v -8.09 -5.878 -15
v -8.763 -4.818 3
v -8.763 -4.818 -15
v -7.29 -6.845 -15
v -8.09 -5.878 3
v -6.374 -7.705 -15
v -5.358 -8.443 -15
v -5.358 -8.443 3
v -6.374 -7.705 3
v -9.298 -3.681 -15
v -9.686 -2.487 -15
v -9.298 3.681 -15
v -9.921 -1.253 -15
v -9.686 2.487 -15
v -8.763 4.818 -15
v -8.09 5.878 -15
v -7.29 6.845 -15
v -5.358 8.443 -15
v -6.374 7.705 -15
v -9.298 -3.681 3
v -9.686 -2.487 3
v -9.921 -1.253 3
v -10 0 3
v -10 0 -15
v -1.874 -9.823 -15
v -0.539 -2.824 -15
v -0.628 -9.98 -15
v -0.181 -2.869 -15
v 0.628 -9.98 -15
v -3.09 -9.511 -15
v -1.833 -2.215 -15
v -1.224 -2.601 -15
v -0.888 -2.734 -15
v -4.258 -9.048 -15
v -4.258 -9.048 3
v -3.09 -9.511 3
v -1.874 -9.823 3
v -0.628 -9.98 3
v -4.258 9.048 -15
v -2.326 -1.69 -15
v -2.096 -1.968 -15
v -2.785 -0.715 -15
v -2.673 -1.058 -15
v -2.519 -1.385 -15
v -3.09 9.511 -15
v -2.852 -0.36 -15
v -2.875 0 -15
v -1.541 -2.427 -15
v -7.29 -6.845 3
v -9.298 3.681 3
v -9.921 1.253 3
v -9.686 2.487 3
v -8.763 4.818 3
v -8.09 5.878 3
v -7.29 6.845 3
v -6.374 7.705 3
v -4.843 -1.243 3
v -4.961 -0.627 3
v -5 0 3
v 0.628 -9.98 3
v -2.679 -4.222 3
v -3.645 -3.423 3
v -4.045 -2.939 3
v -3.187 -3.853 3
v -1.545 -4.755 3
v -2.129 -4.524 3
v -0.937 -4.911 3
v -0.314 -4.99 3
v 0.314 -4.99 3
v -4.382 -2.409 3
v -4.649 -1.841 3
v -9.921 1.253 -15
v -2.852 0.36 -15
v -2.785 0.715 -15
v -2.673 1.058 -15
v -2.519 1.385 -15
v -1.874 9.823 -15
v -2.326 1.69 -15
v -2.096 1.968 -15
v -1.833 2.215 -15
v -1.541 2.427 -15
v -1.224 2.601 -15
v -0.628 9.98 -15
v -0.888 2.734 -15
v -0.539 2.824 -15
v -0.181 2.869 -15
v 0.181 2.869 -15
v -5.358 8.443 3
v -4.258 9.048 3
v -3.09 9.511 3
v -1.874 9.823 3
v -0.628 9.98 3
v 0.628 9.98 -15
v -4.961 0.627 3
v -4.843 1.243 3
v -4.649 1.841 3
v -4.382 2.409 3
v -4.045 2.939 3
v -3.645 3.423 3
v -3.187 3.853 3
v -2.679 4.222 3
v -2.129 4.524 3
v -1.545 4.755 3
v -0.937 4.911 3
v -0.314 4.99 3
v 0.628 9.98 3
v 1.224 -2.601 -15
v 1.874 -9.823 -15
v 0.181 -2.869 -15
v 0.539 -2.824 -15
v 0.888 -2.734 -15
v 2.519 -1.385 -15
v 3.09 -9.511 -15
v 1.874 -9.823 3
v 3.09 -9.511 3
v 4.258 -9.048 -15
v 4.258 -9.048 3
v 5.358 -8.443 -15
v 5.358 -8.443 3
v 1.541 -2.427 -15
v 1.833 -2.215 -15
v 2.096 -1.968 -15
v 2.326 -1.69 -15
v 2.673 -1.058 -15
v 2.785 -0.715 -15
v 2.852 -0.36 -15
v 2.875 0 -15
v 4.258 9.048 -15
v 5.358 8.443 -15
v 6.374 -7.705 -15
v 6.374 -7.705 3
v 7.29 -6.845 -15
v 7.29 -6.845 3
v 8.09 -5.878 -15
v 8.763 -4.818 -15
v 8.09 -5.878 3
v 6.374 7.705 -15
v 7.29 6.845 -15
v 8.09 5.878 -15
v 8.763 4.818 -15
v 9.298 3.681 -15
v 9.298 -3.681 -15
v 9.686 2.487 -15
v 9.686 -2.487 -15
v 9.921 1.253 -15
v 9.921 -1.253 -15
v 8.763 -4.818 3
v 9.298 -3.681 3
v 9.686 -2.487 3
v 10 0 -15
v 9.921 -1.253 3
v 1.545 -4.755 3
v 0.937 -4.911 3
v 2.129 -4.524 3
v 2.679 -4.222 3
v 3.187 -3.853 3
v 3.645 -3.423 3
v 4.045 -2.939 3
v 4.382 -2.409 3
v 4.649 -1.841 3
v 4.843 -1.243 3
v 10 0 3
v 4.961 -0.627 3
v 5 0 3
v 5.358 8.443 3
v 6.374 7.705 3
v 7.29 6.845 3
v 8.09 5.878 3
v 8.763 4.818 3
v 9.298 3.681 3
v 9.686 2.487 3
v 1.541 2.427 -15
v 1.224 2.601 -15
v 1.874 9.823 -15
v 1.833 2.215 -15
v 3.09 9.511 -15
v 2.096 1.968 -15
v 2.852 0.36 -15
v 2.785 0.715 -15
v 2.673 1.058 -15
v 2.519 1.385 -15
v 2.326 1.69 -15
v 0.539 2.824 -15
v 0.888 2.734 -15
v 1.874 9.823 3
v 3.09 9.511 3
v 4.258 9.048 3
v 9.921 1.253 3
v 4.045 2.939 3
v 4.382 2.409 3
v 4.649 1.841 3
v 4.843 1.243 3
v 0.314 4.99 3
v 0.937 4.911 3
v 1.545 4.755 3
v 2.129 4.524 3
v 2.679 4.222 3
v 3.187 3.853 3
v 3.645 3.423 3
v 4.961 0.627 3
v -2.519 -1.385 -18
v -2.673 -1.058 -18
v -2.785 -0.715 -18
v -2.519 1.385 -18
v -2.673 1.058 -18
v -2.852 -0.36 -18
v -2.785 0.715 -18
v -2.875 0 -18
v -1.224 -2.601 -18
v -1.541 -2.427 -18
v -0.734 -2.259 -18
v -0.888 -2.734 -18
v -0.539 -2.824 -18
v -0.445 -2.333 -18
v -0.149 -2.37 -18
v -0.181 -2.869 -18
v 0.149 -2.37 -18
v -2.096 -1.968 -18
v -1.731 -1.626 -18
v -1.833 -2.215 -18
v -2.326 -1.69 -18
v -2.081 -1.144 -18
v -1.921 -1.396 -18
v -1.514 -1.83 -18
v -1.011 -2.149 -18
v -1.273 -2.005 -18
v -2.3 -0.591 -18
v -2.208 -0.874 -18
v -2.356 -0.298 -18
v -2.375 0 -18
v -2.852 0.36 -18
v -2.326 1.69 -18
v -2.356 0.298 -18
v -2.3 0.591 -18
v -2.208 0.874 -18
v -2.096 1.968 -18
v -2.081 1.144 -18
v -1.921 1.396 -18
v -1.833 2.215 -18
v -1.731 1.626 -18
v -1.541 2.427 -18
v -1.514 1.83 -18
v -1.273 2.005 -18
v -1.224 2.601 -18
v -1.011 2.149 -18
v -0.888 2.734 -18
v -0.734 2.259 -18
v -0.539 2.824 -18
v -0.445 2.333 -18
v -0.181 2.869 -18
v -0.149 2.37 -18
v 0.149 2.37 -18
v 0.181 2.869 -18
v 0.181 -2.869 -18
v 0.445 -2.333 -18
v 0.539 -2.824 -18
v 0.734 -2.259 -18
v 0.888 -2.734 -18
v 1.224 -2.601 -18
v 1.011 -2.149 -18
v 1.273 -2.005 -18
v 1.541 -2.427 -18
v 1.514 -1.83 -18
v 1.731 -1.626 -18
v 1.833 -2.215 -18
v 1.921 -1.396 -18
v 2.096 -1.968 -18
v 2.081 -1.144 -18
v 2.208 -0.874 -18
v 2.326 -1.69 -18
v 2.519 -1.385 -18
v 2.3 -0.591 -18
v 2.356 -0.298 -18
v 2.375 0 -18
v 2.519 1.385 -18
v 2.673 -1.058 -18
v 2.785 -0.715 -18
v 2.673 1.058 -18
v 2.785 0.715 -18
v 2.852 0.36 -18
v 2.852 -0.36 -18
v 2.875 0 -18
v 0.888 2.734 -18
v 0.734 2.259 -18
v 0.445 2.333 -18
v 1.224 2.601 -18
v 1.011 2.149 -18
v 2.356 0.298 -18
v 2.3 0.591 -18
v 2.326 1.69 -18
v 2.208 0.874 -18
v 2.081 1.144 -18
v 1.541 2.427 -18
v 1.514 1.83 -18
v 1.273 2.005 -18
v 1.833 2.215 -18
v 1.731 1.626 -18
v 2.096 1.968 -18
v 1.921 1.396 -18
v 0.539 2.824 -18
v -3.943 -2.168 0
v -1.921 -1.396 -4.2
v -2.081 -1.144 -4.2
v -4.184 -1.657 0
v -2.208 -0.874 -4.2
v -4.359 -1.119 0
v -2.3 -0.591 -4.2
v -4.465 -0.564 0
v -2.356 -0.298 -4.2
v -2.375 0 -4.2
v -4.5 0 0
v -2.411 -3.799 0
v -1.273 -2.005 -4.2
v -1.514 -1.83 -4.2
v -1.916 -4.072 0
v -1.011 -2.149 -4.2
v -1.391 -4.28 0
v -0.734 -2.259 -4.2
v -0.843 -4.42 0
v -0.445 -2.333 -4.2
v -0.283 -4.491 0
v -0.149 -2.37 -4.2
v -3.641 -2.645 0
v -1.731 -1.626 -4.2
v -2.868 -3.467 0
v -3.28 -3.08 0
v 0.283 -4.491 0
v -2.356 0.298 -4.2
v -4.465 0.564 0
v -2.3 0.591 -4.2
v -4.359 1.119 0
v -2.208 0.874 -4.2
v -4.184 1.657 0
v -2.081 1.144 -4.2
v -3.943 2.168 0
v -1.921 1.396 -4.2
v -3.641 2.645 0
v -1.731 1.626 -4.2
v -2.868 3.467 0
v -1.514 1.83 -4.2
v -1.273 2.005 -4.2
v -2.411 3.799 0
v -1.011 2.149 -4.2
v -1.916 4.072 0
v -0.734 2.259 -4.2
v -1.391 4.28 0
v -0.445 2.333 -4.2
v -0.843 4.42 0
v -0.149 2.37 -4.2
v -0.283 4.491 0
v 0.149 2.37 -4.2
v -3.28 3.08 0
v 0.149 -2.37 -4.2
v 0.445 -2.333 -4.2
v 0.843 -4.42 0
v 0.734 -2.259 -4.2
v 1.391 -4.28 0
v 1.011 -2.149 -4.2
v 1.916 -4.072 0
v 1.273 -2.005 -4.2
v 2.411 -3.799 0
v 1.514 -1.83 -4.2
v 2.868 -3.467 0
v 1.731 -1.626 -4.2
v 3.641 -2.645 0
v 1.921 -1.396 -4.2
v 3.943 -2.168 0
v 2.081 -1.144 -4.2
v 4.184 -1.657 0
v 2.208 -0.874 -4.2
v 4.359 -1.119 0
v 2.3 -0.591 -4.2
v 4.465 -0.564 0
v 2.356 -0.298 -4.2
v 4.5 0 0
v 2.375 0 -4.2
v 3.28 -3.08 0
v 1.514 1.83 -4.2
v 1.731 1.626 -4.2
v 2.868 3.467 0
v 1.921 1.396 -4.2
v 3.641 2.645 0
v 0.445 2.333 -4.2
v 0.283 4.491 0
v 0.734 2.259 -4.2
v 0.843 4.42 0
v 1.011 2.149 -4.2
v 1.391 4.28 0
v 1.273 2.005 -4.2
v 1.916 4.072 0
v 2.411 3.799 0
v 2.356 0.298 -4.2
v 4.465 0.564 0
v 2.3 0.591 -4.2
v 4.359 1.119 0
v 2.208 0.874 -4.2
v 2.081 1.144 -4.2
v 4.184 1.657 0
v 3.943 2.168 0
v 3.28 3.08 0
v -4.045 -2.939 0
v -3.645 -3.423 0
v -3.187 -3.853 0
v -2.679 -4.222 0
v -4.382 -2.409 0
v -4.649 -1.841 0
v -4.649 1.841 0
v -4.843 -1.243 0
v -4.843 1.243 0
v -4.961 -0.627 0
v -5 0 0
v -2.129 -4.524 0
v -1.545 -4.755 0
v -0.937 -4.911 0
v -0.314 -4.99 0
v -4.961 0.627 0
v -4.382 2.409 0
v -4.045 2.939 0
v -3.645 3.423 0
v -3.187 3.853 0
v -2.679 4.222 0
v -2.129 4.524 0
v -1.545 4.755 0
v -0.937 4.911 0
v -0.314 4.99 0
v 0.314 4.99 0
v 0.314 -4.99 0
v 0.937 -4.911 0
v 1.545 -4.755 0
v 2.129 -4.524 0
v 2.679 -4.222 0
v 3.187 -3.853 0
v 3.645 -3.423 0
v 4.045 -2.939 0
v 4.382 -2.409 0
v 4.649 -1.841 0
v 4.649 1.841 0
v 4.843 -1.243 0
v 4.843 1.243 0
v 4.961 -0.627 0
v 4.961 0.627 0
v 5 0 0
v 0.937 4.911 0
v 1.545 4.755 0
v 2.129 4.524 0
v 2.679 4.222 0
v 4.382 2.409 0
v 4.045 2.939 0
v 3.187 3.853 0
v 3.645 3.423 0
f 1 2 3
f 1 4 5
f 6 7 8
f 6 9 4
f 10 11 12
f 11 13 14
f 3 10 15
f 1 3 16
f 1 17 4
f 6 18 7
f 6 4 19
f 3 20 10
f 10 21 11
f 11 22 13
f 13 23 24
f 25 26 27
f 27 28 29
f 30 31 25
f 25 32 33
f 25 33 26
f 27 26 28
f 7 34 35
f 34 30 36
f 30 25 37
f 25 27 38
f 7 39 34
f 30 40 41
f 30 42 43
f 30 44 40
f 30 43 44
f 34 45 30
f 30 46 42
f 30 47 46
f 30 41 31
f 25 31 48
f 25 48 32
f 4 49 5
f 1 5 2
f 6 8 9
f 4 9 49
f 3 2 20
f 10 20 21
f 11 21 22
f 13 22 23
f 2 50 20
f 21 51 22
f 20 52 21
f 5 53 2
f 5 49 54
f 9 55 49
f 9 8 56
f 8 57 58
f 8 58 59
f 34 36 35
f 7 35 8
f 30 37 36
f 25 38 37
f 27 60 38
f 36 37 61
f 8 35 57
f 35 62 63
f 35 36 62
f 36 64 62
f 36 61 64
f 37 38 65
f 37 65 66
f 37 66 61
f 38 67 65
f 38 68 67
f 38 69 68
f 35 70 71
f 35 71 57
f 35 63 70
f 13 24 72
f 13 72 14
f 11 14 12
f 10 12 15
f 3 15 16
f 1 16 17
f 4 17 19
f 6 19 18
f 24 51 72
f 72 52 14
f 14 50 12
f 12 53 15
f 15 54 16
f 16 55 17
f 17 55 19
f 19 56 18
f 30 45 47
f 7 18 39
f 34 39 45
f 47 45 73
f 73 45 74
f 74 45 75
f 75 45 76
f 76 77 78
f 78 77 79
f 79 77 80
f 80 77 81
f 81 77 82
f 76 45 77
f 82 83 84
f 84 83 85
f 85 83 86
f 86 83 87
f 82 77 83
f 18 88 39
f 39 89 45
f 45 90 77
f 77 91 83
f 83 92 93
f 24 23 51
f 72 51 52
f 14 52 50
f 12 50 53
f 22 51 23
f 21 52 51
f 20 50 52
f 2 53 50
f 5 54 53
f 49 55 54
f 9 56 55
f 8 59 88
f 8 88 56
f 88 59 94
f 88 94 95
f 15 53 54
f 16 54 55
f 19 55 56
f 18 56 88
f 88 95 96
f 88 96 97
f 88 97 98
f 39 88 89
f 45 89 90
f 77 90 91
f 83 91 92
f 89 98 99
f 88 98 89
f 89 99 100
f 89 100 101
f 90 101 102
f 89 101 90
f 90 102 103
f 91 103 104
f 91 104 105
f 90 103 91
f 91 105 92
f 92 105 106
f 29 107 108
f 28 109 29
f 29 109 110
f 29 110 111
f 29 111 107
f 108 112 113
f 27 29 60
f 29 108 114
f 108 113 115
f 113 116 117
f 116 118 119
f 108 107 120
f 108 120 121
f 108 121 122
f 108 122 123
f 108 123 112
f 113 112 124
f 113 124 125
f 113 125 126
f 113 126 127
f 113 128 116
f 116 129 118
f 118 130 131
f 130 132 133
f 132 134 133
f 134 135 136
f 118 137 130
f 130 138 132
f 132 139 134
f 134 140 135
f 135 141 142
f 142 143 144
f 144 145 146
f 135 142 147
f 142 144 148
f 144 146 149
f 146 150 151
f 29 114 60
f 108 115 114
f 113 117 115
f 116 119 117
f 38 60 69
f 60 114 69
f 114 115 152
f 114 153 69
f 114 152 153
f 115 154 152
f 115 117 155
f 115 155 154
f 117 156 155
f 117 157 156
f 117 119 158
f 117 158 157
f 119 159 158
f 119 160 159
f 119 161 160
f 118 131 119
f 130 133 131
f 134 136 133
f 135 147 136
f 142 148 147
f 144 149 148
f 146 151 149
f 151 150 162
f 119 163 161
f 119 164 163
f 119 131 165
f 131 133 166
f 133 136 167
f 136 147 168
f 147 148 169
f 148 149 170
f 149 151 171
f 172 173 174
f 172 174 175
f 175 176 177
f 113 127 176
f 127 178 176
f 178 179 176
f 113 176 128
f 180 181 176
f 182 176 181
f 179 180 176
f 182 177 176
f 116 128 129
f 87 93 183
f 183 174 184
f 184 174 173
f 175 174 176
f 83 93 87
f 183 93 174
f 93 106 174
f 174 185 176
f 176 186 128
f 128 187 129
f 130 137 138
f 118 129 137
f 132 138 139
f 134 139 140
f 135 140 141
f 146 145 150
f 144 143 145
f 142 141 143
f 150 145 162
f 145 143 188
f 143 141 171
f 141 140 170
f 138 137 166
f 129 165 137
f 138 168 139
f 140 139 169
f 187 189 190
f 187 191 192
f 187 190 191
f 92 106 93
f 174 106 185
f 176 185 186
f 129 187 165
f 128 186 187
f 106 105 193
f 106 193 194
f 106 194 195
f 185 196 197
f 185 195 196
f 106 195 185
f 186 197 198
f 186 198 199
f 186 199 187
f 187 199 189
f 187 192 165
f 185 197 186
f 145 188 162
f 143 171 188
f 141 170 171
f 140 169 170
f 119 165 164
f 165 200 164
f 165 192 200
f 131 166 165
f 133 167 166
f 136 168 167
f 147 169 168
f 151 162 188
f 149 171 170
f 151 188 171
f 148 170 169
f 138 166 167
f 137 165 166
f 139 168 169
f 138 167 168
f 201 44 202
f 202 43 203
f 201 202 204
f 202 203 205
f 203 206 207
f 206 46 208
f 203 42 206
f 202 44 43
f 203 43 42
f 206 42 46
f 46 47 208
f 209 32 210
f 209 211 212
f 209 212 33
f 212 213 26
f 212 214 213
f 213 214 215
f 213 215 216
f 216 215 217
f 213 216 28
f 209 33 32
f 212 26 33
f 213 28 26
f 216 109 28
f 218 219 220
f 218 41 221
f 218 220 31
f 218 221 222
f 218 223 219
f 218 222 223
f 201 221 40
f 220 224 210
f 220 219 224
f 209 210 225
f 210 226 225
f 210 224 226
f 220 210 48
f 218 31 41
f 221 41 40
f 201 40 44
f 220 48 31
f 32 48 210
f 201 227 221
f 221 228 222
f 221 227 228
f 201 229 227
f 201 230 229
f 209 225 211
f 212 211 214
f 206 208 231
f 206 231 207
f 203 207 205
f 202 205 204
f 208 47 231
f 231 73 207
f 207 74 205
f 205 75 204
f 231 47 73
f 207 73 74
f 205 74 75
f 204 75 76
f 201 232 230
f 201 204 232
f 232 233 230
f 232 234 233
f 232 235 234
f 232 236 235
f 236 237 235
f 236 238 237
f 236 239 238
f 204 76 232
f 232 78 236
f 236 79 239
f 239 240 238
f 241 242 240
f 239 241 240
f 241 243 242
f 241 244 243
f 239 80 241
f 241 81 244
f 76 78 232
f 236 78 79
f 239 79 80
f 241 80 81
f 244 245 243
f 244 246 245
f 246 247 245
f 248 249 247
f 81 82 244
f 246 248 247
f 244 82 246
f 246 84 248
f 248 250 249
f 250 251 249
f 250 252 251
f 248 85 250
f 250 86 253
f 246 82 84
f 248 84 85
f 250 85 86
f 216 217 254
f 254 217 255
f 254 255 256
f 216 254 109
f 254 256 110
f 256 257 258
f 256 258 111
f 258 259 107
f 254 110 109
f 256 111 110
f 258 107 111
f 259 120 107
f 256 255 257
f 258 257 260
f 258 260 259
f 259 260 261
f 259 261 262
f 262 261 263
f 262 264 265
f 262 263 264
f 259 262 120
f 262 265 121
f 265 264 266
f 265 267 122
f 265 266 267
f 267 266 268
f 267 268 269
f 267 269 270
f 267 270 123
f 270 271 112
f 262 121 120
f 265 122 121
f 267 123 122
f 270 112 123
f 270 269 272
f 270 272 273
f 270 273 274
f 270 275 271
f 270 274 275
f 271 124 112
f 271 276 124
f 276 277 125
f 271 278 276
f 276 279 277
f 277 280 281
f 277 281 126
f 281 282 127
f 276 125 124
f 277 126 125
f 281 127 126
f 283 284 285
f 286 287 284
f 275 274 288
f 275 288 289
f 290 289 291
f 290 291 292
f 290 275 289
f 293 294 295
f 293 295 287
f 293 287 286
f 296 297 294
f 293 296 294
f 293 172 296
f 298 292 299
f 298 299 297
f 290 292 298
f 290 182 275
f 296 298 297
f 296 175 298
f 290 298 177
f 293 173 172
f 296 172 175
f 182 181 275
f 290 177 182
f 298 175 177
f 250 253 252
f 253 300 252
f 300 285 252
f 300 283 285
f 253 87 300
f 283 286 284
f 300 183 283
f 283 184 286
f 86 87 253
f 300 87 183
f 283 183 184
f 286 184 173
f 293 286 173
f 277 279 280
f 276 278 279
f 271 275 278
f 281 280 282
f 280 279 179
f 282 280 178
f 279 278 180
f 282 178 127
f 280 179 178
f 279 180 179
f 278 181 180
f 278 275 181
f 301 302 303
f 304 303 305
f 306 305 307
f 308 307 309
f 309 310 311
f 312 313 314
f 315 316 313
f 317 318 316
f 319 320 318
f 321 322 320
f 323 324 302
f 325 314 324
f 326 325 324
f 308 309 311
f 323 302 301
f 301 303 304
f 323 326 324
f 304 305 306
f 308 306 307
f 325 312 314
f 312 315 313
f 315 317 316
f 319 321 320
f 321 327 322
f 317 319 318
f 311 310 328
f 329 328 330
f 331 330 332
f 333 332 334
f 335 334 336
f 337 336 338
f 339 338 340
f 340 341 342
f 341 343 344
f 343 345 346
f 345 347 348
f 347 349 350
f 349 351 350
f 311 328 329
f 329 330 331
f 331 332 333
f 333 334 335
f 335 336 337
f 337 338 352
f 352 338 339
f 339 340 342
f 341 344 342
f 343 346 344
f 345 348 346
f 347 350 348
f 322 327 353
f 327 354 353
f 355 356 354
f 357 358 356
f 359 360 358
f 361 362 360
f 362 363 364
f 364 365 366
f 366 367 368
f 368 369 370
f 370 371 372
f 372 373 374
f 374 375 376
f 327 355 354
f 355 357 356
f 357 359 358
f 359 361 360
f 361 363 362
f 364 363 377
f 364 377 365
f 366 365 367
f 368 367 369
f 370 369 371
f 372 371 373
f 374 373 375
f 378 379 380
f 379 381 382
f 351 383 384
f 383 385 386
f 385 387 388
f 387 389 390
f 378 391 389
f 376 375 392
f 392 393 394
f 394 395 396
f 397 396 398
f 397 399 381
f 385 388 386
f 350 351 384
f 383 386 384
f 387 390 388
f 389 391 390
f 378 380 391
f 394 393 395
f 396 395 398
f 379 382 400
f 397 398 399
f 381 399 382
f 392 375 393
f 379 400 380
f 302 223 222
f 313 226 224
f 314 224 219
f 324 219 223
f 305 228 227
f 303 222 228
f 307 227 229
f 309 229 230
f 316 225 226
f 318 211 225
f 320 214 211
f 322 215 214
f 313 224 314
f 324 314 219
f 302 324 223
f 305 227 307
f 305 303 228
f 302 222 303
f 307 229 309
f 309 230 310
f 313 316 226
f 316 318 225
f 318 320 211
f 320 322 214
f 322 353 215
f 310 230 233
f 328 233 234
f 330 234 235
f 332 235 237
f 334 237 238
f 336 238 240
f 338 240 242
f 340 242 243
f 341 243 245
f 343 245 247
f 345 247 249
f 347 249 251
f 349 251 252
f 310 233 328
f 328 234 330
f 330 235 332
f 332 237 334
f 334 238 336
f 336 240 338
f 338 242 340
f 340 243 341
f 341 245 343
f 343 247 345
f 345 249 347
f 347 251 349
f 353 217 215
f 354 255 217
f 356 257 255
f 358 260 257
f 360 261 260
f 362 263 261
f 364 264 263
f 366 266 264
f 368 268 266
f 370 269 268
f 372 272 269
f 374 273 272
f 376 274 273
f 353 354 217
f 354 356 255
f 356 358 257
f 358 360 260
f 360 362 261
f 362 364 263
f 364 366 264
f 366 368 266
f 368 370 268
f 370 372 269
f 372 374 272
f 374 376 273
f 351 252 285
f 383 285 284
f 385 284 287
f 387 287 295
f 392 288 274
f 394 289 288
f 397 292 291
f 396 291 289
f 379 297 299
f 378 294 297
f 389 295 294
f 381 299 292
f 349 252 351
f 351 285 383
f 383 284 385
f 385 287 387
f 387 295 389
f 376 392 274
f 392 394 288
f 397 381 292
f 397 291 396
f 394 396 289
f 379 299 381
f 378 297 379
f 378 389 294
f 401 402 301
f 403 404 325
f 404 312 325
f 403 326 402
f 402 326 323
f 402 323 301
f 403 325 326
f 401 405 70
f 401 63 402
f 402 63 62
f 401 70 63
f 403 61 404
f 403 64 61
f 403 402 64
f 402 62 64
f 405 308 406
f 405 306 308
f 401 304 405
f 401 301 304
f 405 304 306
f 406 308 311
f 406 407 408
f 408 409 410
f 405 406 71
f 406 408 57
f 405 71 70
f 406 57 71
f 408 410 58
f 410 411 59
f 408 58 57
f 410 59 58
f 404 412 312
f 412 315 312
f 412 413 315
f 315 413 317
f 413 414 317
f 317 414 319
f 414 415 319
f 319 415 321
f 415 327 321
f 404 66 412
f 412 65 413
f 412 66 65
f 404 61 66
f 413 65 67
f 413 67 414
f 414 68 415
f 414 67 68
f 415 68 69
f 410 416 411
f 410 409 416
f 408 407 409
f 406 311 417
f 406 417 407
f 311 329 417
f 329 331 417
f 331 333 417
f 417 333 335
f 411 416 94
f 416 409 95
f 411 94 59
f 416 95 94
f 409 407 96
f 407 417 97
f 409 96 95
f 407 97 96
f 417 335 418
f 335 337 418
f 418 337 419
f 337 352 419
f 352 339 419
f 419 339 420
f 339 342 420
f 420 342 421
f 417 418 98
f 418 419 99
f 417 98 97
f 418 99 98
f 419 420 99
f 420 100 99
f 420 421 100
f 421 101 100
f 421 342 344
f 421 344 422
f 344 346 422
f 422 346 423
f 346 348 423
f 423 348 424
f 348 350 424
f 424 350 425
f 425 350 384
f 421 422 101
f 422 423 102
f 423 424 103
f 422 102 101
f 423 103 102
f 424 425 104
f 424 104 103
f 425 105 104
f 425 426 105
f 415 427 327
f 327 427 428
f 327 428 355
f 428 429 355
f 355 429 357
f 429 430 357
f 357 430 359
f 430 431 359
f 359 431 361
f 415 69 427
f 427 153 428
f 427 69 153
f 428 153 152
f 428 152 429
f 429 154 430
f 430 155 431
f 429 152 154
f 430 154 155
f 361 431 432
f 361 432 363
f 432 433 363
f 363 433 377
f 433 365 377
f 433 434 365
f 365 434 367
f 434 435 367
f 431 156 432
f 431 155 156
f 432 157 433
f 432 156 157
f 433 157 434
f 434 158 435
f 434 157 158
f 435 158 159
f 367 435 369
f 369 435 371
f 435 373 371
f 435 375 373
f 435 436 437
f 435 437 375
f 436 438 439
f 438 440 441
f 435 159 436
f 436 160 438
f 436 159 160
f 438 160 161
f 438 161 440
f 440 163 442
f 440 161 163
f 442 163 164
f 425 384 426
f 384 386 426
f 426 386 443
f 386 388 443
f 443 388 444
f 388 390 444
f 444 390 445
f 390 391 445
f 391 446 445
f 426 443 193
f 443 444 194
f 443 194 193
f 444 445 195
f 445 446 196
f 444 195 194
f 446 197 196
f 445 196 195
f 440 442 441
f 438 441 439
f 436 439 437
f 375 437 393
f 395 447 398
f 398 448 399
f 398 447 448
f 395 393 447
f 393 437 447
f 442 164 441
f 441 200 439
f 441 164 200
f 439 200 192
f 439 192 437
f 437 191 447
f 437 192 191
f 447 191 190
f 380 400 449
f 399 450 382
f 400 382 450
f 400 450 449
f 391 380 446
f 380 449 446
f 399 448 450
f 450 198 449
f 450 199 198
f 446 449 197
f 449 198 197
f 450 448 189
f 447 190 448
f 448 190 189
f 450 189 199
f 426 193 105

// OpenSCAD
$fn = 50;

difference() {
	union() {
		translate(v = [0, 0, -15.0]) {
			cylinder(h = 18, r = 10.0);
		}
		#translate(v = [0, 0, -18.0]) {
			cylinder(h = 18, r = 2.875);
		}
	}
	union() {
		translate(v = [0, 0, 0]) {
			rotate(a = [0, 0, 0]) {
				difference() {
					union() {
						translate(v = [0, 0, -18.0]) {
							cylinder(h = 18, r = 2.25);
						}
						translate(v = [0, 0, -4.2]) {
							cylinder(h = 4.2, r1 = 2.375, r2 = 4.5);
						}
						translate(v = [0, 0, -18.0]) {
							cylinder(h = 18, r = 2.375);
						}
						translate(v = [0, 0, -18.0]) {
							cylinder(h = 18, r = 2.25);
						}
					}
					union();
				}
			}
		}
		#cylinder(h = 3, r = 5.0);
	}
}
